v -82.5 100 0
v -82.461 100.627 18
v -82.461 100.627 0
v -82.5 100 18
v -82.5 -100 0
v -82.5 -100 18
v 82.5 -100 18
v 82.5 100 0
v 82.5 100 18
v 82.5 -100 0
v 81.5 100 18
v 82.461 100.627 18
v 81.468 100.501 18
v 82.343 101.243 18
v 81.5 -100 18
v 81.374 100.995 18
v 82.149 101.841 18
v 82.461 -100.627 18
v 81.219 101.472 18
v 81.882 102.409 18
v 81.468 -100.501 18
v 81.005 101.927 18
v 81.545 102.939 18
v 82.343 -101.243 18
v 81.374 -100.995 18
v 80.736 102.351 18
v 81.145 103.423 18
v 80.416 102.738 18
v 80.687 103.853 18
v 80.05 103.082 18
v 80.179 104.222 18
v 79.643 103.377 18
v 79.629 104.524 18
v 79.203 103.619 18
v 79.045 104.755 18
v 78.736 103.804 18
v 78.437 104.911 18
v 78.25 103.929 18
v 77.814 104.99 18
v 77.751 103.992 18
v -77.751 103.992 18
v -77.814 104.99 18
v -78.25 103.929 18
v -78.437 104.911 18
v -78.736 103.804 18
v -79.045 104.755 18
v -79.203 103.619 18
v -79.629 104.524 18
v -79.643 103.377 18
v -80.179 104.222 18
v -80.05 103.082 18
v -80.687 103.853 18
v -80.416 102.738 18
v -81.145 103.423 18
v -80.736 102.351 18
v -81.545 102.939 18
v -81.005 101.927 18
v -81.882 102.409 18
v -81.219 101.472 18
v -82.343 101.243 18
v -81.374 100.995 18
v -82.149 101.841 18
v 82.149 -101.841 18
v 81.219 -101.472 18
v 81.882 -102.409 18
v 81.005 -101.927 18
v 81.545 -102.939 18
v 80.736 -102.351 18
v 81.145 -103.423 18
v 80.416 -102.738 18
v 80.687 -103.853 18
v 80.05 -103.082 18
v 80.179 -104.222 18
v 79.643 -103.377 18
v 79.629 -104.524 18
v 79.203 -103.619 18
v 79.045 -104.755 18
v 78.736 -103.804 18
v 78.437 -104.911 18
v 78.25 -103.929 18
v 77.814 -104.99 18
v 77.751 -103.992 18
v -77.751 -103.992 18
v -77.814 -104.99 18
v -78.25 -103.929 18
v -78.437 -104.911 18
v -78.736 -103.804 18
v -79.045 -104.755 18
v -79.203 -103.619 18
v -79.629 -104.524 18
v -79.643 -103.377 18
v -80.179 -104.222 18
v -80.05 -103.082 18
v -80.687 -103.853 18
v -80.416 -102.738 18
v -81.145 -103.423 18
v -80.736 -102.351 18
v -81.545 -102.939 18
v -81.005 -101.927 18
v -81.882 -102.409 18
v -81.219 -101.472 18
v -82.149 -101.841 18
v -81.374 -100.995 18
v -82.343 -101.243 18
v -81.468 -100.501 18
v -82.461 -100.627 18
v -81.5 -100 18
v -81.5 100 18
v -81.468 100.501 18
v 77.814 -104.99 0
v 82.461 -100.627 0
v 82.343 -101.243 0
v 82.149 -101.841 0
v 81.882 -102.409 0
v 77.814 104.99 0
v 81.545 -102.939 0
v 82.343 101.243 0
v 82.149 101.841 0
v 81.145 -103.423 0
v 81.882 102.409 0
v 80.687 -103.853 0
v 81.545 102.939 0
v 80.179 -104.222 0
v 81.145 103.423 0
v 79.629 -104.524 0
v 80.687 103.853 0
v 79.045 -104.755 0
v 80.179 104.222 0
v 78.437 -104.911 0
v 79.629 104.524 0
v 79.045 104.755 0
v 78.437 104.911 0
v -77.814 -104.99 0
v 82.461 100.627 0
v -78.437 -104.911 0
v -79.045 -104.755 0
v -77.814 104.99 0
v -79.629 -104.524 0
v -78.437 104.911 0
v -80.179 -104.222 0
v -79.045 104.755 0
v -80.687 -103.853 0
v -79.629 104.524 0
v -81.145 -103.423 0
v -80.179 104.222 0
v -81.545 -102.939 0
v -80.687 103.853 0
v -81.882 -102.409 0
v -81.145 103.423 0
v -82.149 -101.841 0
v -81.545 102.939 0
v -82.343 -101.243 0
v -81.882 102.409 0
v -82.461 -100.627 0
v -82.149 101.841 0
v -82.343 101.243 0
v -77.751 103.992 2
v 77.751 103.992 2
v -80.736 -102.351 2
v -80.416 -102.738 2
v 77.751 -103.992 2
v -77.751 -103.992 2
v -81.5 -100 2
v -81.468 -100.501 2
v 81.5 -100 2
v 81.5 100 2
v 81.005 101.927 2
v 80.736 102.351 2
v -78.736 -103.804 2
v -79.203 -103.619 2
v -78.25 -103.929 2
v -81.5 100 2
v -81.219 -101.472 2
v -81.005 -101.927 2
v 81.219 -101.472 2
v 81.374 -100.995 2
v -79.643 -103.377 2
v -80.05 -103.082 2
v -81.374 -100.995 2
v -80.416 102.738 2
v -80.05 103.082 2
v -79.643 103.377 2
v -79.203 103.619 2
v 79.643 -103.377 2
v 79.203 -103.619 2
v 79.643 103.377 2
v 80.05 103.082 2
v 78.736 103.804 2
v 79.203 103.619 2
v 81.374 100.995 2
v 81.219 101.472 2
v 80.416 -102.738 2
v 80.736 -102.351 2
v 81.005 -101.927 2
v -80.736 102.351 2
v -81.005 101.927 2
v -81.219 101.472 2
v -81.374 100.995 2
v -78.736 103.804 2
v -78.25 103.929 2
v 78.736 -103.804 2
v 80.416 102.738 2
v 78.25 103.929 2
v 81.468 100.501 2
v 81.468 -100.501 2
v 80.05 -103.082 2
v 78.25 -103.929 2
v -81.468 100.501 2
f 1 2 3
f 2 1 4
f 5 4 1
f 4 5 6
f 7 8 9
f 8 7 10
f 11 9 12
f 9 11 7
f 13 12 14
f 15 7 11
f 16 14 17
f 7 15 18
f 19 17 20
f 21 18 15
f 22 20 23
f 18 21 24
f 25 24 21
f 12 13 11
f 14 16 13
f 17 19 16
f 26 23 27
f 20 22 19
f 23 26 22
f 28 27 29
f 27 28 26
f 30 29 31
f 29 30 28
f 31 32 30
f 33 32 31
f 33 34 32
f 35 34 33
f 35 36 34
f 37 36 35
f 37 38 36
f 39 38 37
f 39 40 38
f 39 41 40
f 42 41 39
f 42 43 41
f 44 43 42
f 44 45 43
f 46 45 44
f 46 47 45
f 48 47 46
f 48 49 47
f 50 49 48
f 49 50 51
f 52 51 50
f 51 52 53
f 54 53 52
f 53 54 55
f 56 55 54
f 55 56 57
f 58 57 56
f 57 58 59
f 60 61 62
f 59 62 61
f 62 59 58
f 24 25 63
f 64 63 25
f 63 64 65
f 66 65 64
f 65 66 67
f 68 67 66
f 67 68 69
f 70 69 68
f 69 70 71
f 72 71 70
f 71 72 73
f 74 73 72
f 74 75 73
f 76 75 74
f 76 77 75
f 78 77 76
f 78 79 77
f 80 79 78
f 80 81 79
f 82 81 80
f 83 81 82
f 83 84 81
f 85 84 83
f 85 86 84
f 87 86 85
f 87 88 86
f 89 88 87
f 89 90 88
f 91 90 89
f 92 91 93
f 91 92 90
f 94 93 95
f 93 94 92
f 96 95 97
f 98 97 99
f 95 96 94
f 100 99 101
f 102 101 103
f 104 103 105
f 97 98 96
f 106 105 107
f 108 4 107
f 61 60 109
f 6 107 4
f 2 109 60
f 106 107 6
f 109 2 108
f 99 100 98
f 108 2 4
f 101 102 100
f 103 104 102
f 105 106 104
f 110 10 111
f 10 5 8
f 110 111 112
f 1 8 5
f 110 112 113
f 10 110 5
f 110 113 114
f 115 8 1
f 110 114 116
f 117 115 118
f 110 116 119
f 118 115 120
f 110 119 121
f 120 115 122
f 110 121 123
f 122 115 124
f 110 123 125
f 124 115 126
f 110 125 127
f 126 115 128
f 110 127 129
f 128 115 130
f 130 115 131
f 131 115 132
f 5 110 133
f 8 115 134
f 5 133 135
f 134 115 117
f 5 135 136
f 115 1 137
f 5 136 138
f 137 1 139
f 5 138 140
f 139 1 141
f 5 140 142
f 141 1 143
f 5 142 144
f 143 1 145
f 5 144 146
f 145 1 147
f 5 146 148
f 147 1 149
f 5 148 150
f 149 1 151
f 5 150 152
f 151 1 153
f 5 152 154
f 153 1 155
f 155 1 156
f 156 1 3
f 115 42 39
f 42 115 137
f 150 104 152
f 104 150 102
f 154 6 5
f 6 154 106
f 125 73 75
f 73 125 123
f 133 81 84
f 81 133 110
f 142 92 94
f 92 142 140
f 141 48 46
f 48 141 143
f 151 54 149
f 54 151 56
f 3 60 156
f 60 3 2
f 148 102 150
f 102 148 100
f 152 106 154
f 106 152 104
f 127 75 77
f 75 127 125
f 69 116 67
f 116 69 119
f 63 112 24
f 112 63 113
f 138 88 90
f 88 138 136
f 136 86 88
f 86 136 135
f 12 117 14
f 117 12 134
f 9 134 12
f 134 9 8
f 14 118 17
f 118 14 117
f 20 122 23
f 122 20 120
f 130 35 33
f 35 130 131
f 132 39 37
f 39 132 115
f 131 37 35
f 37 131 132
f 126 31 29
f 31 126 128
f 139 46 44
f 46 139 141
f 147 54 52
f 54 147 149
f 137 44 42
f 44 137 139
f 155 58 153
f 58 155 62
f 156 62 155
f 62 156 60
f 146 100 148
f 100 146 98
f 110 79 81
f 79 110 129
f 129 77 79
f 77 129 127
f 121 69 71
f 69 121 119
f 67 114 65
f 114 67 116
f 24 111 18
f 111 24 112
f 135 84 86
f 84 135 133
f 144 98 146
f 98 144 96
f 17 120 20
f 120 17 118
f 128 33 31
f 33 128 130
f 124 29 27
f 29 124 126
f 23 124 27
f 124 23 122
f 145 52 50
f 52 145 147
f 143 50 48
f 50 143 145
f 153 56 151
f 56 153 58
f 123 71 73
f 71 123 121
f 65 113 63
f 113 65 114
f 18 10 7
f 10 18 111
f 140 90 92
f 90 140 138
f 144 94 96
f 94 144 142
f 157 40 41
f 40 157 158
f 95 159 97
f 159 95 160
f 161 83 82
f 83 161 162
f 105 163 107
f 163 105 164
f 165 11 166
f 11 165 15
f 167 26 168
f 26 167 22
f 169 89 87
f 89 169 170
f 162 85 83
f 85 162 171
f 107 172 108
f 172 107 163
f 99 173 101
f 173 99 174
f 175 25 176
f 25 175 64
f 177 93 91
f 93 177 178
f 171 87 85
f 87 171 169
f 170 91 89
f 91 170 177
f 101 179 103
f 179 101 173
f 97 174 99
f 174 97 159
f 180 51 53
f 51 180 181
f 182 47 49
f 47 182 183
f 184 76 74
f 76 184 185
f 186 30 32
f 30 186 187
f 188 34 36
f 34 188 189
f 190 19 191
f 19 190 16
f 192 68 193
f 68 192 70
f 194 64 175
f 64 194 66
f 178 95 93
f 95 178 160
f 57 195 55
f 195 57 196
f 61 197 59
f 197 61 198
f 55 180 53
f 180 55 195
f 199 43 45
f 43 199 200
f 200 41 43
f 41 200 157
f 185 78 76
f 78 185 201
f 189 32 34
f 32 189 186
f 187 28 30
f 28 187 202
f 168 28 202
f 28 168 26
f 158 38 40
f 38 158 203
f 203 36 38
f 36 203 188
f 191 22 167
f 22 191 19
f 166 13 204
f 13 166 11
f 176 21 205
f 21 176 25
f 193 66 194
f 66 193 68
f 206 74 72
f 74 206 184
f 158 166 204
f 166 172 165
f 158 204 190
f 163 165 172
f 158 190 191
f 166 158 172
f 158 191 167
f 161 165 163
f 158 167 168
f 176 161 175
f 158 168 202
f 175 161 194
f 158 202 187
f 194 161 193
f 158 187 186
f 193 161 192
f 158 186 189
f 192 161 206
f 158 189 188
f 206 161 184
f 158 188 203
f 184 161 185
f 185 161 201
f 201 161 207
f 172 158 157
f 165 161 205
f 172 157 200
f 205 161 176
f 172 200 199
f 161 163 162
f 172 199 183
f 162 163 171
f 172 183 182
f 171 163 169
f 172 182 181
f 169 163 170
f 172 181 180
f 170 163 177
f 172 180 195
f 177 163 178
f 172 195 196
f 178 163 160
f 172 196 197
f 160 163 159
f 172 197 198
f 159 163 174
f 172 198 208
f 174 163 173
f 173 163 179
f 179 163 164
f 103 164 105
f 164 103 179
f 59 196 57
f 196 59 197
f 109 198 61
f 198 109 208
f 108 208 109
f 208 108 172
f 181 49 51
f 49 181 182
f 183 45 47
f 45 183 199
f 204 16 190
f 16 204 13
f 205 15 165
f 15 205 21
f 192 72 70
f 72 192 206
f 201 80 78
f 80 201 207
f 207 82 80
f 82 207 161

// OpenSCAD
$fn = 50;


difference() {
	union() {
		hull() {
			translate(v = [-77.5000000000, 100.0000000000, 0]) {
				cylinder(h = 18, r = 5);
			}
			translate(v = [77.5000000000, 100.0000000000, 0]) {
				cylinder(h = 18, r = 5);
			}
			translate(v = [-77.5000000000, -100.0000000000, 0]) {
				cylinder(h = 18, r = 5);
			}
			translate(v = [77.5000000000, -100.0000000000, 0]) {
				cylinder(h = 18, r = 5);
			}
		}
	}
	union() {
		translate(v = [0, 0, 2]) {
			hull() {
				translate(v = [-77.5000000000, 100.0000000000, 0]) {
					cylinder(h = 16, r = 4);
				}
				translate(v = [77.5000000000, 100.0000000000, 0]) {
					cylinder(h = 16, r = 4);
				}
				translate(v = [-77.5000000000, -100.0000000000, 0]) {
					cylinder(h = 16, r = 4);
				}
				translate(v = [77.5000000000, -100.0000000000, 0]) {
					cylinder(h = 16, r = 4);
				}
			}
		}
	}
}
